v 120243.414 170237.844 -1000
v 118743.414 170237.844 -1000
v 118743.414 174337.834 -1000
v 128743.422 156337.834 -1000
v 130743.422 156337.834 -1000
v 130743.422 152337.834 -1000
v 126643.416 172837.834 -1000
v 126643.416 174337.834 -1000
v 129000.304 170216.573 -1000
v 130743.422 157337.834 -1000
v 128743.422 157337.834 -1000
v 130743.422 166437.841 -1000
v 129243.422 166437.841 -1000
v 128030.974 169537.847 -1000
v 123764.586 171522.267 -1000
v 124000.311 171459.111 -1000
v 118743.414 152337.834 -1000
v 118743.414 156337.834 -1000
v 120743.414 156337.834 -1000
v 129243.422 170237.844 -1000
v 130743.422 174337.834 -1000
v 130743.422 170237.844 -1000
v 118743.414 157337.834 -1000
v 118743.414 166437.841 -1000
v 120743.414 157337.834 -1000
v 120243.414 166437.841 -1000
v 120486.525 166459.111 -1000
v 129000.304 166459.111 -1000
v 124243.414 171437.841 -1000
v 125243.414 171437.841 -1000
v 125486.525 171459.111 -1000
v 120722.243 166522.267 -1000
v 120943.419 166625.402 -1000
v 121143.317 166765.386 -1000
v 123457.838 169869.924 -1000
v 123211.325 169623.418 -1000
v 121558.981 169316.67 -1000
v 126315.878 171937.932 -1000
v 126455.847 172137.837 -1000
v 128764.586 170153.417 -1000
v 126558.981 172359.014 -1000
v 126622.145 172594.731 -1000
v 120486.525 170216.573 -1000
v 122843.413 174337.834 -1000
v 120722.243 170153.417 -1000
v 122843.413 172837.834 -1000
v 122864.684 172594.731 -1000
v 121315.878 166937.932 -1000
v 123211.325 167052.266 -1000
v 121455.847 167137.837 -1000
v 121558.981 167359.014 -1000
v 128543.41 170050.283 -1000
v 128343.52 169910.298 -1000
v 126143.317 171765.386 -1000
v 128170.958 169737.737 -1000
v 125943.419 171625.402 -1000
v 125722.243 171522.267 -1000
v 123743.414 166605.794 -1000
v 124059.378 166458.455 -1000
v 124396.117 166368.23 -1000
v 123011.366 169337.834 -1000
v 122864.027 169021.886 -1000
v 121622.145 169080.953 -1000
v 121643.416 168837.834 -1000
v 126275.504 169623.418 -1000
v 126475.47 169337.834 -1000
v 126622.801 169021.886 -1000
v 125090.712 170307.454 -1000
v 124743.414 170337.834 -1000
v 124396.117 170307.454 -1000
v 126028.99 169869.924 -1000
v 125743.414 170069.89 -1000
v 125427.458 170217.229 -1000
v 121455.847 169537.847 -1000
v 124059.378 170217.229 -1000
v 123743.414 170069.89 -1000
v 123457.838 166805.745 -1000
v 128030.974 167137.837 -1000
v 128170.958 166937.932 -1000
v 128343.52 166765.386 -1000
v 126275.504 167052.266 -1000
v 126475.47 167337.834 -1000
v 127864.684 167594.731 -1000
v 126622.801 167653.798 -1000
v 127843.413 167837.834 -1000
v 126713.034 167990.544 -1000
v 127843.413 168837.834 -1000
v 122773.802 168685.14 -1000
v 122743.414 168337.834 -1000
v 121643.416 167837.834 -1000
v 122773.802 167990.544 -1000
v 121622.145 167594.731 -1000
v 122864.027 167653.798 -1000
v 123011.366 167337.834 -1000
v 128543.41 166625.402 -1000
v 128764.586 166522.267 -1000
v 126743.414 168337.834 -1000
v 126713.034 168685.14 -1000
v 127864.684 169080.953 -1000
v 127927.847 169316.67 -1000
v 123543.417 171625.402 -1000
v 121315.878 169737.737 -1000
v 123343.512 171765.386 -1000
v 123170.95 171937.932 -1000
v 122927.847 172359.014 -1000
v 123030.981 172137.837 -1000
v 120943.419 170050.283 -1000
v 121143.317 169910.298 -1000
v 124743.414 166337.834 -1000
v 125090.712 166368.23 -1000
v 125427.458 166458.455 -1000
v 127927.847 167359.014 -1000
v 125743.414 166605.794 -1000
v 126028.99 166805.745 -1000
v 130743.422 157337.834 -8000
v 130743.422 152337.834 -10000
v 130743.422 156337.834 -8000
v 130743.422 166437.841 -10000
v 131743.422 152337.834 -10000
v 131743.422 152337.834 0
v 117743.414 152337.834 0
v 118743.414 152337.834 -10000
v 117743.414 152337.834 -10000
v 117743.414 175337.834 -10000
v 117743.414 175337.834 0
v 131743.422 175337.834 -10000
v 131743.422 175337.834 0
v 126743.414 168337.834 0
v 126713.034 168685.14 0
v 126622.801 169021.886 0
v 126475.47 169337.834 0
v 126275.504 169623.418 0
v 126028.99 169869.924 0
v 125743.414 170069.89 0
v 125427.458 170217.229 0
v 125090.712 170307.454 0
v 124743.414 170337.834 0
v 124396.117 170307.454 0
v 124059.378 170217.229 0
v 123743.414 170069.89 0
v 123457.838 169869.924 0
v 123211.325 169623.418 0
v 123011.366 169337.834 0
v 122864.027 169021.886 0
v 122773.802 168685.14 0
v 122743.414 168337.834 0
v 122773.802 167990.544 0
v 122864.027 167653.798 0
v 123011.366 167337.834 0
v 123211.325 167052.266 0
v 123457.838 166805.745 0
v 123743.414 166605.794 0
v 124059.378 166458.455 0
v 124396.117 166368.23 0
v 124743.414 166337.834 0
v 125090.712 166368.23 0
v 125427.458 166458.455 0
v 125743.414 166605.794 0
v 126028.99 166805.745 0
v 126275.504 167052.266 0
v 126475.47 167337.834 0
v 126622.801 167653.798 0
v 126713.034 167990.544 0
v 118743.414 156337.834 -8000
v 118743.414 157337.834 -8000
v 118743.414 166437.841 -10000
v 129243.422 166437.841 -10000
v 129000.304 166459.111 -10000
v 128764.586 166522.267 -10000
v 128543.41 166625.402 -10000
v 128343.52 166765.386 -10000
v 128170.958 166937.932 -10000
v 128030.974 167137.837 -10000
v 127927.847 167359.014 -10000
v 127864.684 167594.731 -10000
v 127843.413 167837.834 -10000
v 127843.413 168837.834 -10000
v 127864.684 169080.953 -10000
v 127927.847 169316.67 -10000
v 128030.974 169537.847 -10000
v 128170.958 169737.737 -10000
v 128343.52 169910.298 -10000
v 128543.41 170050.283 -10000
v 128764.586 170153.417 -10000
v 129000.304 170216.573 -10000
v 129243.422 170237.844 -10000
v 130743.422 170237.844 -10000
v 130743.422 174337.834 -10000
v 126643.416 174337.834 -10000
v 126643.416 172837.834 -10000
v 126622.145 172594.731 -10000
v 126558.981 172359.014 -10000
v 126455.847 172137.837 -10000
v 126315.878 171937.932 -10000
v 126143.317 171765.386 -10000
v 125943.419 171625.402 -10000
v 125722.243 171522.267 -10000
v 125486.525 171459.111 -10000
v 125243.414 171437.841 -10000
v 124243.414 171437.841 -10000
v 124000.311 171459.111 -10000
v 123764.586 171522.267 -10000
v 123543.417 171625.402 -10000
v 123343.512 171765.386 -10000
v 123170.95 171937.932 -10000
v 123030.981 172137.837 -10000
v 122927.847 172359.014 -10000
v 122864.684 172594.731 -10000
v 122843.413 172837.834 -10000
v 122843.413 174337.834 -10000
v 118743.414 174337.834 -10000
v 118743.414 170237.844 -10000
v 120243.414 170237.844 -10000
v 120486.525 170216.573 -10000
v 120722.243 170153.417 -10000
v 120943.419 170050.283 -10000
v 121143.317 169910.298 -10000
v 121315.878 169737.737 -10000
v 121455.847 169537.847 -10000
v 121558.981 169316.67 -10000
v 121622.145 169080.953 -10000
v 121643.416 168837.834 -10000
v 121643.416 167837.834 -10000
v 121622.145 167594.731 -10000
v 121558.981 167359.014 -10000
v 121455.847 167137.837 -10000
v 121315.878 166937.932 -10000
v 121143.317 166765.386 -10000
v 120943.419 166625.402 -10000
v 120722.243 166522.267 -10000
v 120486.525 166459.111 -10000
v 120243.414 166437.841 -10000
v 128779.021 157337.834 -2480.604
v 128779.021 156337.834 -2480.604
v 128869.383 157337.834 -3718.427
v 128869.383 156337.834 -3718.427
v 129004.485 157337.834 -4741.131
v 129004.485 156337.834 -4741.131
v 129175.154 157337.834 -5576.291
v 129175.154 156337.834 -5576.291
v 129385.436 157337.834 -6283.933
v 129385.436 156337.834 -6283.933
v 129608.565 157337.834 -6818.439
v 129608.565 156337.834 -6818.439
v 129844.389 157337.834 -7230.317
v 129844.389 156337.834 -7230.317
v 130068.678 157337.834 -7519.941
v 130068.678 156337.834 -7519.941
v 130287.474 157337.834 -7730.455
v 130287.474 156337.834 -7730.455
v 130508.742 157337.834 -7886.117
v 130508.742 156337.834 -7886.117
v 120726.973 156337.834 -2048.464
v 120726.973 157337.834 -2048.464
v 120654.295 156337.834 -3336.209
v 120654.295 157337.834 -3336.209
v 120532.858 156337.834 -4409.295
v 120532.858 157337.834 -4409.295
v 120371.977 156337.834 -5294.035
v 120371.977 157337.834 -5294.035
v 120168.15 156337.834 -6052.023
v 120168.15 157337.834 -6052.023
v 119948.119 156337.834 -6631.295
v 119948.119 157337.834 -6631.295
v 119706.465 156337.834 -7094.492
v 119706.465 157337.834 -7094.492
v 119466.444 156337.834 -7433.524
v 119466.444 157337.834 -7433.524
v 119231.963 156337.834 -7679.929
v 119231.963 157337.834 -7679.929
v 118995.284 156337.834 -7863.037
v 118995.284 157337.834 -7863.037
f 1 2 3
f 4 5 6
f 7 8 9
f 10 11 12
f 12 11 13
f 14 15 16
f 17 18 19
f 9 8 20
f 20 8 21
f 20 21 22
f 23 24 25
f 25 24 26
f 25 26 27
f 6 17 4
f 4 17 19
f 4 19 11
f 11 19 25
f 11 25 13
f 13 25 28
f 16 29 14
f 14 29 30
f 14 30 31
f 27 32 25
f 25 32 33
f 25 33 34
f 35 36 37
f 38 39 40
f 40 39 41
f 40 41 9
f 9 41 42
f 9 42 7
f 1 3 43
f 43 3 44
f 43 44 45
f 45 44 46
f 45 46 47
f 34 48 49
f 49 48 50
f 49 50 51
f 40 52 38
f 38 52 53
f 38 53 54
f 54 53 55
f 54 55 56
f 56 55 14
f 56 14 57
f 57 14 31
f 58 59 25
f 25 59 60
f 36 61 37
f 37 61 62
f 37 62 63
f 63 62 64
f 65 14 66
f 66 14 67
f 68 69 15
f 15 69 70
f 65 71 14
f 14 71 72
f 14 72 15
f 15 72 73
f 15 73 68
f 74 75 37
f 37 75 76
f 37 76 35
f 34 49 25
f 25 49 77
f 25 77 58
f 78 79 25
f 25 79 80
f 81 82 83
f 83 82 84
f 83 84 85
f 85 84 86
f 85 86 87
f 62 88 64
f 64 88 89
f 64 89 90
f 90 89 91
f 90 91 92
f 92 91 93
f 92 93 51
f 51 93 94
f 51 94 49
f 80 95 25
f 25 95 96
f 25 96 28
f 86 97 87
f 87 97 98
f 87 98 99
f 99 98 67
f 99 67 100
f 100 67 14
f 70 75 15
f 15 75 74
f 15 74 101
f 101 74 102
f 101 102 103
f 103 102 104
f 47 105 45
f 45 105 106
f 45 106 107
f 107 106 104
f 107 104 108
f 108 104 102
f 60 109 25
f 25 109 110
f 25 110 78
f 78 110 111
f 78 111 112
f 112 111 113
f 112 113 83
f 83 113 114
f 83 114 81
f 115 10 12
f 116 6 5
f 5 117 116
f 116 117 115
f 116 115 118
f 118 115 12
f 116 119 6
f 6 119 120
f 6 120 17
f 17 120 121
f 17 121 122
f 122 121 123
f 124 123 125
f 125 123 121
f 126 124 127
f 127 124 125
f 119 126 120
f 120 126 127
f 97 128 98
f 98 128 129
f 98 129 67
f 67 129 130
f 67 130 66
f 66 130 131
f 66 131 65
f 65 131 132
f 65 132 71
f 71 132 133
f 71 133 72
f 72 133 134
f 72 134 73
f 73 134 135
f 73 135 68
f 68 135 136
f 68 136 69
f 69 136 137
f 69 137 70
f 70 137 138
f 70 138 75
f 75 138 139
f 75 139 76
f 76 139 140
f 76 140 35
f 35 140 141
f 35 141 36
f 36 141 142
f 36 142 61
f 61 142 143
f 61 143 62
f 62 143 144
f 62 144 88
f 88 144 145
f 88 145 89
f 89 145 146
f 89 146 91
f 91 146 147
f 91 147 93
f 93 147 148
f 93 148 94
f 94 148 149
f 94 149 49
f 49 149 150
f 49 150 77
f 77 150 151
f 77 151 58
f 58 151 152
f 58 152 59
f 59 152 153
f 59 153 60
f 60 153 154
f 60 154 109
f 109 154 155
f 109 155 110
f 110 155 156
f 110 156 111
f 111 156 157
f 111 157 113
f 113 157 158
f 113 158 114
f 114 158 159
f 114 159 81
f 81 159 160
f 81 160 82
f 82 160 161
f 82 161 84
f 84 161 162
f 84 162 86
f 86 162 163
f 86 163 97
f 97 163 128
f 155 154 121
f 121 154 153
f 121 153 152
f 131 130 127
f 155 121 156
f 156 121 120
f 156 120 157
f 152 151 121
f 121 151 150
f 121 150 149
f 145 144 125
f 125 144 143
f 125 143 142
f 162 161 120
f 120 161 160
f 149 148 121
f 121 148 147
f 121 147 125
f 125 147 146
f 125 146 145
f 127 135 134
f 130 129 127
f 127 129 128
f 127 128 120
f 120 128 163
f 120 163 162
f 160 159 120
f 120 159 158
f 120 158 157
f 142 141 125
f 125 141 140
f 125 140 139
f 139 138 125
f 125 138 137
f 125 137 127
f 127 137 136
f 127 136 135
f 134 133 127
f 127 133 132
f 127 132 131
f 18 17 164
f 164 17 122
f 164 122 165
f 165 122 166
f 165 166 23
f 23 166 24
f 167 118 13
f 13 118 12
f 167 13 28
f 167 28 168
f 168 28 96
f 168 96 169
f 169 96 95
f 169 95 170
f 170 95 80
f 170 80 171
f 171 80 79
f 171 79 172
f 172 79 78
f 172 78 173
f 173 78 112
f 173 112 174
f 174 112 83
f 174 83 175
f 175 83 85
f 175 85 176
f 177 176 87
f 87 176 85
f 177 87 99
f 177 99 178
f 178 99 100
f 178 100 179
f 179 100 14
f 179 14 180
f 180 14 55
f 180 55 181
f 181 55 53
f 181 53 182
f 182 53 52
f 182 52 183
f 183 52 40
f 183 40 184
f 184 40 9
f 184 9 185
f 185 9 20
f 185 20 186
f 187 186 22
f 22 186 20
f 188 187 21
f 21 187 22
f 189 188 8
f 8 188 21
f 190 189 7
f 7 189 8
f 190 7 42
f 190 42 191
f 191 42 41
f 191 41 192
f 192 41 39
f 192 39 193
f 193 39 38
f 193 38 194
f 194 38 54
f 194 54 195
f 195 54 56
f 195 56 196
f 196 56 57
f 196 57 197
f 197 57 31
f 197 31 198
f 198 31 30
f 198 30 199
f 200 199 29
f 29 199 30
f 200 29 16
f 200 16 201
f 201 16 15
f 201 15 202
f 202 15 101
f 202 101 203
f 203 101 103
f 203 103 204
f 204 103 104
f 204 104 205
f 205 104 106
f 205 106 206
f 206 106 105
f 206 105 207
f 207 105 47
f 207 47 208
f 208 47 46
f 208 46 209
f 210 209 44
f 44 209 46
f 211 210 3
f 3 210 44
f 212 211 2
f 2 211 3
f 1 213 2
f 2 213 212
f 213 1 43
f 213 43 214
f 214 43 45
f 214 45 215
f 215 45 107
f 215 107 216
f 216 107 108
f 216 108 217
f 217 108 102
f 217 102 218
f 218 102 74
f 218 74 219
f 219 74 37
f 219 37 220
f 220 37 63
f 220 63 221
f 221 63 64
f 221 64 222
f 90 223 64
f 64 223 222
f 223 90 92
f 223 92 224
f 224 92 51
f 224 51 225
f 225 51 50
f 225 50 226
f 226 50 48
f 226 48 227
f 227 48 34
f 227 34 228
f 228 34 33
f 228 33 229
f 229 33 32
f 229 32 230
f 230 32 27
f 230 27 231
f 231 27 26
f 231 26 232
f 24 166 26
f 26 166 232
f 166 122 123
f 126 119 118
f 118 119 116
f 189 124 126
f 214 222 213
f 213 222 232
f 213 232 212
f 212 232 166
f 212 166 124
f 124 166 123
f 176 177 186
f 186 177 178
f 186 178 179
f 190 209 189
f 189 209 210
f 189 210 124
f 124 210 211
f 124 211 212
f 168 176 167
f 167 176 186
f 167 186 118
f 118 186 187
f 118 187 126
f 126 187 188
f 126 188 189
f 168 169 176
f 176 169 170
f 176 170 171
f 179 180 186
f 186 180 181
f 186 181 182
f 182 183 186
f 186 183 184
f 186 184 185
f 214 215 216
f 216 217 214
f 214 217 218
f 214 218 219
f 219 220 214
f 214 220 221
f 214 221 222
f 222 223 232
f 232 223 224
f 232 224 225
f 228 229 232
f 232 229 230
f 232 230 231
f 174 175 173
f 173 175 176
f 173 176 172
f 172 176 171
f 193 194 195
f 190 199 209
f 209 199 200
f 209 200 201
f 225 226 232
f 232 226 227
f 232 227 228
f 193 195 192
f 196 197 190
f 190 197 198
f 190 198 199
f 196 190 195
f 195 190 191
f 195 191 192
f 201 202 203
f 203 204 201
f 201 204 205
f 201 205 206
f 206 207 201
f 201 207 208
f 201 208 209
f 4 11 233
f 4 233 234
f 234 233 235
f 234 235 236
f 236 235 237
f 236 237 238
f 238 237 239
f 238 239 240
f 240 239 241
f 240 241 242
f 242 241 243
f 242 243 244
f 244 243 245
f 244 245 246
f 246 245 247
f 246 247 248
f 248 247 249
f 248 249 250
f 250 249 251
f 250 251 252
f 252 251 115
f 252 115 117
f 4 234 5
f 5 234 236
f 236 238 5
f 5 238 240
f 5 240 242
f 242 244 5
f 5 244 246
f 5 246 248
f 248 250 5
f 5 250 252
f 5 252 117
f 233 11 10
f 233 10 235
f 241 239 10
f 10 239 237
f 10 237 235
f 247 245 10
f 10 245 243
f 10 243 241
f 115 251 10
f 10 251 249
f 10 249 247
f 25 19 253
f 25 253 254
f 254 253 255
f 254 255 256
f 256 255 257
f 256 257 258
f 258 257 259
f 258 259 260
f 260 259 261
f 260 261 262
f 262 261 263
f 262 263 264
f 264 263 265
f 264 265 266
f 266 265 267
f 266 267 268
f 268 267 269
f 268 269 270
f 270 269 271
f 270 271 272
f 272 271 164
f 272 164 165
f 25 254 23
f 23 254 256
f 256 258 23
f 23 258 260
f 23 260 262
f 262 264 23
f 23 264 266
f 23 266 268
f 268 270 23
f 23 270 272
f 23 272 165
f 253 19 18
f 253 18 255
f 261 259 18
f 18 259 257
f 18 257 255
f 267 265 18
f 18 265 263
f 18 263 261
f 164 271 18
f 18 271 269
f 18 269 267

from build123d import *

# Parameters (mm, degrees)
CROQUIS1_W                   = 14000
CROQUIS1_H                   = 23000
CROQUIS1_R                   = 2000
SALIENTE_EXTRUIR1_DEPTH      = 1000
SALIENTE_EXTRUIR2_DEPTH      = 10000
SALIENTE_EXTRUIR3_DEPTH      = 500
SALIENTE_EXTRUIR3_DEPTH_BACK = 500


with BuildPart() as part:
    # Croquis1 → Saliente-Extruir1 (new body)
    with BuildSketch(Plane.XY):
        with Locations((124743.416897498, 163837.836627923)):
            Rectangle(CROQUIS1_W, CROQUIS1_H)
        with Locations((124743.416897498, 168337.836627923)):
            Circle(CROQUIS1_R, mode=Mode.SUBTRACT)
    extrude(amount=-SALIENTE_EXTRUIR1_DEPTH)

    # Croquis1<6> → Saliente-Extruir2 (add)
    with BuildSketch(Plane.XY):
        with BuildLine():
            Line((117743.416897498, 152337.836627923), (118743.416897498, 152337.836627923))
            Line((118743.416897498, 152337.836627923), (118743.416897498, 166437.836627923))
            Line((118743.416897498, 166437.836627923), (120243.416897498, 166437.836627923))
            ThreePointArc((120243.416897498, 166437.836627923), (121233.366391159, 166847.887134262), (121643.416897498, 167837.836627923))
            Line((121643.416897498, 167837.836627923), (121643.416897498, 168837.836627923))
            ThreePointArc((121643.416897498, 168837.836627923), (121233.366391159, 169827.786121585), (120243.416897498, 170237.836627923))
            Line((120243.416897498, 170237.836627923), (118743.416897498, 170237.836627923))
            Line((118743.416897498, 170237.836627923), (118743.416897498, 174337.836627923))
            Line((118743.416897498, 174337.836627923), (122843.416897498, 174337.836627923))
            Line((122843.416897498, 174337.836627923), (122843.416897498, 172837.836627923))
            ThreePointArc((122843.416897498, 172837.836627923), (123253.467403837, 171847.887134262), (124243.416897498, 171437.836627923))
            Line((124243.416897498, 171437.836627923), (125243.416897498, 171437.836627923))
            ThreePointArc((125243.416897498, 171437.836627923), (126233.366391159, 171847.887134262), (126643.416897498, 172837.836627923))
            Line((126643.416897498, 172837.836627923), (126643.416897498, 174337.836627923))
            Line((126643.416897498, 174337.836627923), (130743.416897498, 174337.836627923))
            Line((130743.416897498, 174337.836627923), (130743.416897498, 170237.836627923))
            Line((130743.416897498, 170237.836627923), (129243.416897498, 170237.836627923))
            ThreePointArc((129243.416897498, 170237.836627923), (128253.467403837, 169827.786121585), (127843.416897498, 168837.836627923))
            Line((127843.416897498, 168837.836627923), (127843.416897498, 167837.836627923))
            ThreePointArc((127843.416897498, 167837.836627923), (128253.467403837, 166847.887134262), (129243.416897498, 166437.836627923))
            Line((129243.416897498, 166437.836627923), (130743.416897498, 166437.836627923))
            Line((130743.416897498, 166437.836627923), (130743.416897498, 152337.836627923))
            Line((130743.416897498, 152337.836627923), (131743.416897498, 152337.836627923))
            Line((131743.416897498, 152337.836627923), (131743.416897498, 175337.836627923))
            Line((131743.416897498, 175337.836627923), (117743.416897498, 175337.836627923))
            Line((117743.416897498, 175337.836627923), (117743.416897498, 152337.836627923))
        make_face()
    extrude(amount=-SALIENTE_EXTRUIR2_DEPTH)

    # Croquis2 → Saliente-Extruir3 (add, two sides: drawn at the far end of the back side and taken through both)
    with BuildSketch(Plane(origin=(0, 156837.836627923, 0), x_dir=(1, 0, 0), z_dir=(0, 1, 0)).offset(-SALIENTE_EXTRUIR3_DEPTH_BACK)):
        with BuildLine():
            Line((130743.416897498, 1000), (130743.416897498, 8000))
            add(Edge.make_bspline(
                [(130743.416897498, 8000), (128761.675222051, 7234.348262256), (128743.416897498, 1000)],
                knots=[0, 0, 0, 0.590989184, 0.590989184, 0.590989184], degree=2))
            Line((128743.416897498, 1000), (130743.416897498, 1000))
        make_face()
        with BuildLine():
            add(Edge.make_bspline(
                [(118743.416897498, 8000), (120739.811138244, 7120.578794783), (120743.416897498, 1000)],
                knots=[0, 0, 0, 0.514460755, 0.514460755, 0.514460755], degree=2))
            Line((118743.416897498, 8000), (118743.416897498, 1000))
            Line((118743.416897498, 1000), (120743.416897498, 1000))
        make_face()
    extrude(amount=SALIENTE_EXTRUIR3_DEPTH + SALIENTE_EXTRUIR3_DEPTH_BACK)


solid = part.part
